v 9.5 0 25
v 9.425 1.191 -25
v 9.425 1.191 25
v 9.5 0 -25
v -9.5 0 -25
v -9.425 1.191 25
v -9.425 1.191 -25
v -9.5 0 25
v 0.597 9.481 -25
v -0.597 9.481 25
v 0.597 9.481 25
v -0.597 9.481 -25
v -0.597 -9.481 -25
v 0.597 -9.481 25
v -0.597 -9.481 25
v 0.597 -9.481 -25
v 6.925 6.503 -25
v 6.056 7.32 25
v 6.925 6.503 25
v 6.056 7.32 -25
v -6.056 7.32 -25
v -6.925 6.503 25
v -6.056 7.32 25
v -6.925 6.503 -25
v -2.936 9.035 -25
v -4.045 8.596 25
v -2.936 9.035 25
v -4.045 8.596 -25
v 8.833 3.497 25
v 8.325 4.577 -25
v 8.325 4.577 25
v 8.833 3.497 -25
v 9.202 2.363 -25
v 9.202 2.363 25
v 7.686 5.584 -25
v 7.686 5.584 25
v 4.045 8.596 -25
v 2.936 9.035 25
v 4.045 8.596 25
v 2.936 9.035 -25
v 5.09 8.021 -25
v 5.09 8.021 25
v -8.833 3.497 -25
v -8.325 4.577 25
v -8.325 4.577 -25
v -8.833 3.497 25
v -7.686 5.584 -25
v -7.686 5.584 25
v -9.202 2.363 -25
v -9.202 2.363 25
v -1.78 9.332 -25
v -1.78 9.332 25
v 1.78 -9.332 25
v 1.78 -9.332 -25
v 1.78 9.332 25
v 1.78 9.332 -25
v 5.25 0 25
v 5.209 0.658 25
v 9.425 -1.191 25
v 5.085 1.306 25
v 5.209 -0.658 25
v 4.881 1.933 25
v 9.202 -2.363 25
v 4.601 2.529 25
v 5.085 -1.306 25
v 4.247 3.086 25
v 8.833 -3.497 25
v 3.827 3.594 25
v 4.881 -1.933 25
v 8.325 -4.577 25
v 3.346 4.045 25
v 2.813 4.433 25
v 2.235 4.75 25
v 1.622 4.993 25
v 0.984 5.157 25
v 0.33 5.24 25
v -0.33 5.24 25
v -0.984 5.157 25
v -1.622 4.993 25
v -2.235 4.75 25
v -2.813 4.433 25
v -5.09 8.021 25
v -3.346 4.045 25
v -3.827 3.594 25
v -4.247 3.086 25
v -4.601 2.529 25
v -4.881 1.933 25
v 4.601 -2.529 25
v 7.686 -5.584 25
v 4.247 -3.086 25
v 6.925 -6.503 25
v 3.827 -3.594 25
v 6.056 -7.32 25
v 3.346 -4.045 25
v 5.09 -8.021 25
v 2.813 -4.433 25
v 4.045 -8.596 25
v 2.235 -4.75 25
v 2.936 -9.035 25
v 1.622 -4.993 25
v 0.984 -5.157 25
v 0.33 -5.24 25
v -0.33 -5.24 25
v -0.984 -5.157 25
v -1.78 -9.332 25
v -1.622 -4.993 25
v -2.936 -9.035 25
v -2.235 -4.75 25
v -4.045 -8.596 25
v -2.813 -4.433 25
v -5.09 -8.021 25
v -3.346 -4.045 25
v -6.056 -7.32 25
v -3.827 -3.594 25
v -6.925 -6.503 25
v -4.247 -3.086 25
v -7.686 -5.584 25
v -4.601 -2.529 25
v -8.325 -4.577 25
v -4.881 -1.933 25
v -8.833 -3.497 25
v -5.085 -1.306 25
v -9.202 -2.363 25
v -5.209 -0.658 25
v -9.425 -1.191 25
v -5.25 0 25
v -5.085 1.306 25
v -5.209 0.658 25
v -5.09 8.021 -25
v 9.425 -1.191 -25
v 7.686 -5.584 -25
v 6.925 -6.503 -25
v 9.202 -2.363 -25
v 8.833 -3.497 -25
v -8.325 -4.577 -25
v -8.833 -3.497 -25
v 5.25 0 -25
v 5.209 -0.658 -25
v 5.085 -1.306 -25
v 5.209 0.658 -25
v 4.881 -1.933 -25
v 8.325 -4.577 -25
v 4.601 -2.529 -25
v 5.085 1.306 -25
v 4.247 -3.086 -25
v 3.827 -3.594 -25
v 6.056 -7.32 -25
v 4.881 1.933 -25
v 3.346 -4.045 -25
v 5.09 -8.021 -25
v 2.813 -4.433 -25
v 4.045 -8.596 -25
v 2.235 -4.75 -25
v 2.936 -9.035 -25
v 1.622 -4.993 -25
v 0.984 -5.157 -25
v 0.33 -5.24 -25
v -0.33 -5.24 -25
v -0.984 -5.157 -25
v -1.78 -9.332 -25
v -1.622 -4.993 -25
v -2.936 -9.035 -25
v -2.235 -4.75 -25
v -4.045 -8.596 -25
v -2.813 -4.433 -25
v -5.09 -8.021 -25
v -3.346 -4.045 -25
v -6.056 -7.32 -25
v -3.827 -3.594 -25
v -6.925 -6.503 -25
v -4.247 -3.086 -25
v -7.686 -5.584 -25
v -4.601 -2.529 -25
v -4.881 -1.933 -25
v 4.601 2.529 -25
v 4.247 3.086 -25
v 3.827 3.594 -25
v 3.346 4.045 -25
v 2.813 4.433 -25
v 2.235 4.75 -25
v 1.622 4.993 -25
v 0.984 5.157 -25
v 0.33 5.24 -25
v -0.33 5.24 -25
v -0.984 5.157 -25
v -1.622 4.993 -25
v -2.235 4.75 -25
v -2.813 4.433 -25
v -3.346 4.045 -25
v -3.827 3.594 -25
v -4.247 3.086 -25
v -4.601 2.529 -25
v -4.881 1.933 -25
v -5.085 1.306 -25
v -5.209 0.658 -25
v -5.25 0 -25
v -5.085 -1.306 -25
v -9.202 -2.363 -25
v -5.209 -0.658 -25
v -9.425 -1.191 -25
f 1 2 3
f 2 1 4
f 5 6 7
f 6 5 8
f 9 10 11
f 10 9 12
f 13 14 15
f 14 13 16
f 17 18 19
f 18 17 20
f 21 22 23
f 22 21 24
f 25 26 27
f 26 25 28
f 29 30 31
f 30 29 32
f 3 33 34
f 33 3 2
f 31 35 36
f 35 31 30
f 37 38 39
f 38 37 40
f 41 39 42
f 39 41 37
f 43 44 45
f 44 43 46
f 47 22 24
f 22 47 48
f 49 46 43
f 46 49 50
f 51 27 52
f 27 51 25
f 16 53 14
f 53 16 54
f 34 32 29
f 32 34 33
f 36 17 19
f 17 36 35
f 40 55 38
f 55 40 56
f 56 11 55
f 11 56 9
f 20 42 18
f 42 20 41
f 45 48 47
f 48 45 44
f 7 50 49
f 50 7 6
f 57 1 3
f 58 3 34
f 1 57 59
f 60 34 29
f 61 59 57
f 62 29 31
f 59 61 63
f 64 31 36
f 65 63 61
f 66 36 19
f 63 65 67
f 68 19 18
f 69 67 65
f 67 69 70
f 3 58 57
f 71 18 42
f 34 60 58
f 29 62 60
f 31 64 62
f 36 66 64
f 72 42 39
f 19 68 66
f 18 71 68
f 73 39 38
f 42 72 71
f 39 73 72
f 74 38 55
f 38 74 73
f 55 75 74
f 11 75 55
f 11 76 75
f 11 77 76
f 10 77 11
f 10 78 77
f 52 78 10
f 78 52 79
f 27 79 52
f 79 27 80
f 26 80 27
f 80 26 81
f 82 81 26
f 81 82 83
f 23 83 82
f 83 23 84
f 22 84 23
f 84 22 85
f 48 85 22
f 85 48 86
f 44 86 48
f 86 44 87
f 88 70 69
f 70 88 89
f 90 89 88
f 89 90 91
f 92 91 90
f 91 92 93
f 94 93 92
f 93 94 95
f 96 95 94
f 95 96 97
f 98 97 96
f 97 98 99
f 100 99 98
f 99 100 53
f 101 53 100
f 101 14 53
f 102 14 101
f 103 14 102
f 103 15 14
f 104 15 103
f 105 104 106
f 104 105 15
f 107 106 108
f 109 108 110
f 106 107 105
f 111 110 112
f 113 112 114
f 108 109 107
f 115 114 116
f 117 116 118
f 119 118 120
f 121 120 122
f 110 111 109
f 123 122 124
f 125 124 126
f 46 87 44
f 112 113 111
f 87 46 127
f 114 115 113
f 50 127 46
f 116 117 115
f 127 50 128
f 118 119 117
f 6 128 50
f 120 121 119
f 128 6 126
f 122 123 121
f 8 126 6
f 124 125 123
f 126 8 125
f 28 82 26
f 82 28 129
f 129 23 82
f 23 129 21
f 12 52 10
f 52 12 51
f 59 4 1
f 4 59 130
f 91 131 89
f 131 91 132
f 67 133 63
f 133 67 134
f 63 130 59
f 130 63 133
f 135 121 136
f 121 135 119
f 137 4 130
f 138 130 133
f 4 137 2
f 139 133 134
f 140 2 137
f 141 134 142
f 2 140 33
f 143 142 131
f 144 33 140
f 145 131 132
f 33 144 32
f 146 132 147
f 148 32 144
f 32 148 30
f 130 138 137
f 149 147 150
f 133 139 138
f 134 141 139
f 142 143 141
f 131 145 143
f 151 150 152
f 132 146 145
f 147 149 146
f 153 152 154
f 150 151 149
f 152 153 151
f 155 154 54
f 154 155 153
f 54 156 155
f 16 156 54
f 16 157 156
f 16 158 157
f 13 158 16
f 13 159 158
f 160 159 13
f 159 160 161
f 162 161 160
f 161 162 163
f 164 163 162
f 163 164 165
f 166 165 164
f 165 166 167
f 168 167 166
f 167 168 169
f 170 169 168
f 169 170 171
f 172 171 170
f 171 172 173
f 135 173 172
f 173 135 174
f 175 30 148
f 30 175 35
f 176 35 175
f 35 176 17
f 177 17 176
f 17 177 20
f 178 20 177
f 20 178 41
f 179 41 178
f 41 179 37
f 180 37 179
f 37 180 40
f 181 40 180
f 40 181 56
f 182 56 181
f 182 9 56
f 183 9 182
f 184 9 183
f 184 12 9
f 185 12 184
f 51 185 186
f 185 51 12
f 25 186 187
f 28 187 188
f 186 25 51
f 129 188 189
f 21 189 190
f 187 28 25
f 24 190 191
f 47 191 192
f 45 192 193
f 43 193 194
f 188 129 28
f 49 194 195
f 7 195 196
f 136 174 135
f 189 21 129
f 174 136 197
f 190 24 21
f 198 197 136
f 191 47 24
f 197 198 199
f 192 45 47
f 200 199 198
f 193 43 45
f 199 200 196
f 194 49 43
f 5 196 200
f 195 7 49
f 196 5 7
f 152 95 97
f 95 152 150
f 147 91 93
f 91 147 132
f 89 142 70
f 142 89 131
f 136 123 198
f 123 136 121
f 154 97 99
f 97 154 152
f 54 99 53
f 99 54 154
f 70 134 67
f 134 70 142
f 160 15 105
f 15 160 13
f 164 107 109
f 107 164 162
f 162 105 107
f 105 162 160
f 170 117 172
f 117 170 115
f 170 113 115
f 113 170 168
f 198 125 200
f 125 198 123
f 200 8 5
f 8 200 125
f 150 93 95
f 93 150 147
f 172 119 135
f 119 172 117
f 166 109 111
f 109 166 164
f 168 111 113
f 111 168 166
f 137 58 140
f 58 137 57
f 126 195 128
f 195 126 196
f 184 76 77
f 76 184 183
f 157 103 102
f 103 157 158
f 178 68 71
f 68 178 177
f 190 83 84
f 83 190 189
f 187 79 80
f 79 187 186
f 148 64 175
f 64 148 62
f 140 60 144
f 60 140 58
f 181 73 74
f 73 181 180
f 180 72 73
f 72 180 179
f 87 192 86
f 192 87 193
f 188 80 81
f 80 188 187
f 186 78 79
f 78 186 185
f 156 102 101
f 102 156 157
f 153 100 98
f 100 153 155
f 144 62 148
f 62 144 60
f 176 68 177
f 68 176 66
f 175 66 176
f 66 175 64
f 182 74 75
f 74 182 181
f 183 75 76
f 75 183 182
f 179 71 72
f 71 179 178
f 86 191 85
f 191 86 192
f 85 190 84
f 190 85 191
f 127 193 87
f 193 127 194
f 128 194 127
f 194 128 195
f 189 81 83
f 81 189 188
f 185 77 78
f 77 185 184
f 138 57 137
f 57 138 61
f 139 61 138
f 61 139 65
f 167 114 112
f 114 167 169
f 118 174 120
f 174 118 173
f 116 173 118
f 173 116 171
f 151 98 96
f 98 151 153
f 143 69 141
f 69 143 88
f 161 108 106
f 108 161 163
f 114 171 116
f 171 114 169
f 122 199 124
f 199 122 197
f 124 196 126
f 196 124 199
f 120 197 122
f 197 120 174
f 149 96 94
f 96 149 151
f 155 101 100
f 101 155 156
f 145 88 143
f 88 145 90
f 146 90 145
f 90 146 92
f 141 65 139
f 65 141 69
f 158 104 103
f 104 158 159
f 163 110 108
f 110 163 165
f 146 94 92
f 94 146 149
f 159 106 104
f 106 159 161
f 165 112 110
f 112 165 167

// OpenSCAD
$fn = 50;


difference() {
	union() {
		translate(v = [0, 0, -25.0000000000]) {
			cylinder(h = 50, r = 9.5000000000);
		}
	}
	union() {
		translate(v = [0, 0, -100.0000000000]) {
			cylinder(h = 200, r = 5.2500000000);
		}
	}
}
